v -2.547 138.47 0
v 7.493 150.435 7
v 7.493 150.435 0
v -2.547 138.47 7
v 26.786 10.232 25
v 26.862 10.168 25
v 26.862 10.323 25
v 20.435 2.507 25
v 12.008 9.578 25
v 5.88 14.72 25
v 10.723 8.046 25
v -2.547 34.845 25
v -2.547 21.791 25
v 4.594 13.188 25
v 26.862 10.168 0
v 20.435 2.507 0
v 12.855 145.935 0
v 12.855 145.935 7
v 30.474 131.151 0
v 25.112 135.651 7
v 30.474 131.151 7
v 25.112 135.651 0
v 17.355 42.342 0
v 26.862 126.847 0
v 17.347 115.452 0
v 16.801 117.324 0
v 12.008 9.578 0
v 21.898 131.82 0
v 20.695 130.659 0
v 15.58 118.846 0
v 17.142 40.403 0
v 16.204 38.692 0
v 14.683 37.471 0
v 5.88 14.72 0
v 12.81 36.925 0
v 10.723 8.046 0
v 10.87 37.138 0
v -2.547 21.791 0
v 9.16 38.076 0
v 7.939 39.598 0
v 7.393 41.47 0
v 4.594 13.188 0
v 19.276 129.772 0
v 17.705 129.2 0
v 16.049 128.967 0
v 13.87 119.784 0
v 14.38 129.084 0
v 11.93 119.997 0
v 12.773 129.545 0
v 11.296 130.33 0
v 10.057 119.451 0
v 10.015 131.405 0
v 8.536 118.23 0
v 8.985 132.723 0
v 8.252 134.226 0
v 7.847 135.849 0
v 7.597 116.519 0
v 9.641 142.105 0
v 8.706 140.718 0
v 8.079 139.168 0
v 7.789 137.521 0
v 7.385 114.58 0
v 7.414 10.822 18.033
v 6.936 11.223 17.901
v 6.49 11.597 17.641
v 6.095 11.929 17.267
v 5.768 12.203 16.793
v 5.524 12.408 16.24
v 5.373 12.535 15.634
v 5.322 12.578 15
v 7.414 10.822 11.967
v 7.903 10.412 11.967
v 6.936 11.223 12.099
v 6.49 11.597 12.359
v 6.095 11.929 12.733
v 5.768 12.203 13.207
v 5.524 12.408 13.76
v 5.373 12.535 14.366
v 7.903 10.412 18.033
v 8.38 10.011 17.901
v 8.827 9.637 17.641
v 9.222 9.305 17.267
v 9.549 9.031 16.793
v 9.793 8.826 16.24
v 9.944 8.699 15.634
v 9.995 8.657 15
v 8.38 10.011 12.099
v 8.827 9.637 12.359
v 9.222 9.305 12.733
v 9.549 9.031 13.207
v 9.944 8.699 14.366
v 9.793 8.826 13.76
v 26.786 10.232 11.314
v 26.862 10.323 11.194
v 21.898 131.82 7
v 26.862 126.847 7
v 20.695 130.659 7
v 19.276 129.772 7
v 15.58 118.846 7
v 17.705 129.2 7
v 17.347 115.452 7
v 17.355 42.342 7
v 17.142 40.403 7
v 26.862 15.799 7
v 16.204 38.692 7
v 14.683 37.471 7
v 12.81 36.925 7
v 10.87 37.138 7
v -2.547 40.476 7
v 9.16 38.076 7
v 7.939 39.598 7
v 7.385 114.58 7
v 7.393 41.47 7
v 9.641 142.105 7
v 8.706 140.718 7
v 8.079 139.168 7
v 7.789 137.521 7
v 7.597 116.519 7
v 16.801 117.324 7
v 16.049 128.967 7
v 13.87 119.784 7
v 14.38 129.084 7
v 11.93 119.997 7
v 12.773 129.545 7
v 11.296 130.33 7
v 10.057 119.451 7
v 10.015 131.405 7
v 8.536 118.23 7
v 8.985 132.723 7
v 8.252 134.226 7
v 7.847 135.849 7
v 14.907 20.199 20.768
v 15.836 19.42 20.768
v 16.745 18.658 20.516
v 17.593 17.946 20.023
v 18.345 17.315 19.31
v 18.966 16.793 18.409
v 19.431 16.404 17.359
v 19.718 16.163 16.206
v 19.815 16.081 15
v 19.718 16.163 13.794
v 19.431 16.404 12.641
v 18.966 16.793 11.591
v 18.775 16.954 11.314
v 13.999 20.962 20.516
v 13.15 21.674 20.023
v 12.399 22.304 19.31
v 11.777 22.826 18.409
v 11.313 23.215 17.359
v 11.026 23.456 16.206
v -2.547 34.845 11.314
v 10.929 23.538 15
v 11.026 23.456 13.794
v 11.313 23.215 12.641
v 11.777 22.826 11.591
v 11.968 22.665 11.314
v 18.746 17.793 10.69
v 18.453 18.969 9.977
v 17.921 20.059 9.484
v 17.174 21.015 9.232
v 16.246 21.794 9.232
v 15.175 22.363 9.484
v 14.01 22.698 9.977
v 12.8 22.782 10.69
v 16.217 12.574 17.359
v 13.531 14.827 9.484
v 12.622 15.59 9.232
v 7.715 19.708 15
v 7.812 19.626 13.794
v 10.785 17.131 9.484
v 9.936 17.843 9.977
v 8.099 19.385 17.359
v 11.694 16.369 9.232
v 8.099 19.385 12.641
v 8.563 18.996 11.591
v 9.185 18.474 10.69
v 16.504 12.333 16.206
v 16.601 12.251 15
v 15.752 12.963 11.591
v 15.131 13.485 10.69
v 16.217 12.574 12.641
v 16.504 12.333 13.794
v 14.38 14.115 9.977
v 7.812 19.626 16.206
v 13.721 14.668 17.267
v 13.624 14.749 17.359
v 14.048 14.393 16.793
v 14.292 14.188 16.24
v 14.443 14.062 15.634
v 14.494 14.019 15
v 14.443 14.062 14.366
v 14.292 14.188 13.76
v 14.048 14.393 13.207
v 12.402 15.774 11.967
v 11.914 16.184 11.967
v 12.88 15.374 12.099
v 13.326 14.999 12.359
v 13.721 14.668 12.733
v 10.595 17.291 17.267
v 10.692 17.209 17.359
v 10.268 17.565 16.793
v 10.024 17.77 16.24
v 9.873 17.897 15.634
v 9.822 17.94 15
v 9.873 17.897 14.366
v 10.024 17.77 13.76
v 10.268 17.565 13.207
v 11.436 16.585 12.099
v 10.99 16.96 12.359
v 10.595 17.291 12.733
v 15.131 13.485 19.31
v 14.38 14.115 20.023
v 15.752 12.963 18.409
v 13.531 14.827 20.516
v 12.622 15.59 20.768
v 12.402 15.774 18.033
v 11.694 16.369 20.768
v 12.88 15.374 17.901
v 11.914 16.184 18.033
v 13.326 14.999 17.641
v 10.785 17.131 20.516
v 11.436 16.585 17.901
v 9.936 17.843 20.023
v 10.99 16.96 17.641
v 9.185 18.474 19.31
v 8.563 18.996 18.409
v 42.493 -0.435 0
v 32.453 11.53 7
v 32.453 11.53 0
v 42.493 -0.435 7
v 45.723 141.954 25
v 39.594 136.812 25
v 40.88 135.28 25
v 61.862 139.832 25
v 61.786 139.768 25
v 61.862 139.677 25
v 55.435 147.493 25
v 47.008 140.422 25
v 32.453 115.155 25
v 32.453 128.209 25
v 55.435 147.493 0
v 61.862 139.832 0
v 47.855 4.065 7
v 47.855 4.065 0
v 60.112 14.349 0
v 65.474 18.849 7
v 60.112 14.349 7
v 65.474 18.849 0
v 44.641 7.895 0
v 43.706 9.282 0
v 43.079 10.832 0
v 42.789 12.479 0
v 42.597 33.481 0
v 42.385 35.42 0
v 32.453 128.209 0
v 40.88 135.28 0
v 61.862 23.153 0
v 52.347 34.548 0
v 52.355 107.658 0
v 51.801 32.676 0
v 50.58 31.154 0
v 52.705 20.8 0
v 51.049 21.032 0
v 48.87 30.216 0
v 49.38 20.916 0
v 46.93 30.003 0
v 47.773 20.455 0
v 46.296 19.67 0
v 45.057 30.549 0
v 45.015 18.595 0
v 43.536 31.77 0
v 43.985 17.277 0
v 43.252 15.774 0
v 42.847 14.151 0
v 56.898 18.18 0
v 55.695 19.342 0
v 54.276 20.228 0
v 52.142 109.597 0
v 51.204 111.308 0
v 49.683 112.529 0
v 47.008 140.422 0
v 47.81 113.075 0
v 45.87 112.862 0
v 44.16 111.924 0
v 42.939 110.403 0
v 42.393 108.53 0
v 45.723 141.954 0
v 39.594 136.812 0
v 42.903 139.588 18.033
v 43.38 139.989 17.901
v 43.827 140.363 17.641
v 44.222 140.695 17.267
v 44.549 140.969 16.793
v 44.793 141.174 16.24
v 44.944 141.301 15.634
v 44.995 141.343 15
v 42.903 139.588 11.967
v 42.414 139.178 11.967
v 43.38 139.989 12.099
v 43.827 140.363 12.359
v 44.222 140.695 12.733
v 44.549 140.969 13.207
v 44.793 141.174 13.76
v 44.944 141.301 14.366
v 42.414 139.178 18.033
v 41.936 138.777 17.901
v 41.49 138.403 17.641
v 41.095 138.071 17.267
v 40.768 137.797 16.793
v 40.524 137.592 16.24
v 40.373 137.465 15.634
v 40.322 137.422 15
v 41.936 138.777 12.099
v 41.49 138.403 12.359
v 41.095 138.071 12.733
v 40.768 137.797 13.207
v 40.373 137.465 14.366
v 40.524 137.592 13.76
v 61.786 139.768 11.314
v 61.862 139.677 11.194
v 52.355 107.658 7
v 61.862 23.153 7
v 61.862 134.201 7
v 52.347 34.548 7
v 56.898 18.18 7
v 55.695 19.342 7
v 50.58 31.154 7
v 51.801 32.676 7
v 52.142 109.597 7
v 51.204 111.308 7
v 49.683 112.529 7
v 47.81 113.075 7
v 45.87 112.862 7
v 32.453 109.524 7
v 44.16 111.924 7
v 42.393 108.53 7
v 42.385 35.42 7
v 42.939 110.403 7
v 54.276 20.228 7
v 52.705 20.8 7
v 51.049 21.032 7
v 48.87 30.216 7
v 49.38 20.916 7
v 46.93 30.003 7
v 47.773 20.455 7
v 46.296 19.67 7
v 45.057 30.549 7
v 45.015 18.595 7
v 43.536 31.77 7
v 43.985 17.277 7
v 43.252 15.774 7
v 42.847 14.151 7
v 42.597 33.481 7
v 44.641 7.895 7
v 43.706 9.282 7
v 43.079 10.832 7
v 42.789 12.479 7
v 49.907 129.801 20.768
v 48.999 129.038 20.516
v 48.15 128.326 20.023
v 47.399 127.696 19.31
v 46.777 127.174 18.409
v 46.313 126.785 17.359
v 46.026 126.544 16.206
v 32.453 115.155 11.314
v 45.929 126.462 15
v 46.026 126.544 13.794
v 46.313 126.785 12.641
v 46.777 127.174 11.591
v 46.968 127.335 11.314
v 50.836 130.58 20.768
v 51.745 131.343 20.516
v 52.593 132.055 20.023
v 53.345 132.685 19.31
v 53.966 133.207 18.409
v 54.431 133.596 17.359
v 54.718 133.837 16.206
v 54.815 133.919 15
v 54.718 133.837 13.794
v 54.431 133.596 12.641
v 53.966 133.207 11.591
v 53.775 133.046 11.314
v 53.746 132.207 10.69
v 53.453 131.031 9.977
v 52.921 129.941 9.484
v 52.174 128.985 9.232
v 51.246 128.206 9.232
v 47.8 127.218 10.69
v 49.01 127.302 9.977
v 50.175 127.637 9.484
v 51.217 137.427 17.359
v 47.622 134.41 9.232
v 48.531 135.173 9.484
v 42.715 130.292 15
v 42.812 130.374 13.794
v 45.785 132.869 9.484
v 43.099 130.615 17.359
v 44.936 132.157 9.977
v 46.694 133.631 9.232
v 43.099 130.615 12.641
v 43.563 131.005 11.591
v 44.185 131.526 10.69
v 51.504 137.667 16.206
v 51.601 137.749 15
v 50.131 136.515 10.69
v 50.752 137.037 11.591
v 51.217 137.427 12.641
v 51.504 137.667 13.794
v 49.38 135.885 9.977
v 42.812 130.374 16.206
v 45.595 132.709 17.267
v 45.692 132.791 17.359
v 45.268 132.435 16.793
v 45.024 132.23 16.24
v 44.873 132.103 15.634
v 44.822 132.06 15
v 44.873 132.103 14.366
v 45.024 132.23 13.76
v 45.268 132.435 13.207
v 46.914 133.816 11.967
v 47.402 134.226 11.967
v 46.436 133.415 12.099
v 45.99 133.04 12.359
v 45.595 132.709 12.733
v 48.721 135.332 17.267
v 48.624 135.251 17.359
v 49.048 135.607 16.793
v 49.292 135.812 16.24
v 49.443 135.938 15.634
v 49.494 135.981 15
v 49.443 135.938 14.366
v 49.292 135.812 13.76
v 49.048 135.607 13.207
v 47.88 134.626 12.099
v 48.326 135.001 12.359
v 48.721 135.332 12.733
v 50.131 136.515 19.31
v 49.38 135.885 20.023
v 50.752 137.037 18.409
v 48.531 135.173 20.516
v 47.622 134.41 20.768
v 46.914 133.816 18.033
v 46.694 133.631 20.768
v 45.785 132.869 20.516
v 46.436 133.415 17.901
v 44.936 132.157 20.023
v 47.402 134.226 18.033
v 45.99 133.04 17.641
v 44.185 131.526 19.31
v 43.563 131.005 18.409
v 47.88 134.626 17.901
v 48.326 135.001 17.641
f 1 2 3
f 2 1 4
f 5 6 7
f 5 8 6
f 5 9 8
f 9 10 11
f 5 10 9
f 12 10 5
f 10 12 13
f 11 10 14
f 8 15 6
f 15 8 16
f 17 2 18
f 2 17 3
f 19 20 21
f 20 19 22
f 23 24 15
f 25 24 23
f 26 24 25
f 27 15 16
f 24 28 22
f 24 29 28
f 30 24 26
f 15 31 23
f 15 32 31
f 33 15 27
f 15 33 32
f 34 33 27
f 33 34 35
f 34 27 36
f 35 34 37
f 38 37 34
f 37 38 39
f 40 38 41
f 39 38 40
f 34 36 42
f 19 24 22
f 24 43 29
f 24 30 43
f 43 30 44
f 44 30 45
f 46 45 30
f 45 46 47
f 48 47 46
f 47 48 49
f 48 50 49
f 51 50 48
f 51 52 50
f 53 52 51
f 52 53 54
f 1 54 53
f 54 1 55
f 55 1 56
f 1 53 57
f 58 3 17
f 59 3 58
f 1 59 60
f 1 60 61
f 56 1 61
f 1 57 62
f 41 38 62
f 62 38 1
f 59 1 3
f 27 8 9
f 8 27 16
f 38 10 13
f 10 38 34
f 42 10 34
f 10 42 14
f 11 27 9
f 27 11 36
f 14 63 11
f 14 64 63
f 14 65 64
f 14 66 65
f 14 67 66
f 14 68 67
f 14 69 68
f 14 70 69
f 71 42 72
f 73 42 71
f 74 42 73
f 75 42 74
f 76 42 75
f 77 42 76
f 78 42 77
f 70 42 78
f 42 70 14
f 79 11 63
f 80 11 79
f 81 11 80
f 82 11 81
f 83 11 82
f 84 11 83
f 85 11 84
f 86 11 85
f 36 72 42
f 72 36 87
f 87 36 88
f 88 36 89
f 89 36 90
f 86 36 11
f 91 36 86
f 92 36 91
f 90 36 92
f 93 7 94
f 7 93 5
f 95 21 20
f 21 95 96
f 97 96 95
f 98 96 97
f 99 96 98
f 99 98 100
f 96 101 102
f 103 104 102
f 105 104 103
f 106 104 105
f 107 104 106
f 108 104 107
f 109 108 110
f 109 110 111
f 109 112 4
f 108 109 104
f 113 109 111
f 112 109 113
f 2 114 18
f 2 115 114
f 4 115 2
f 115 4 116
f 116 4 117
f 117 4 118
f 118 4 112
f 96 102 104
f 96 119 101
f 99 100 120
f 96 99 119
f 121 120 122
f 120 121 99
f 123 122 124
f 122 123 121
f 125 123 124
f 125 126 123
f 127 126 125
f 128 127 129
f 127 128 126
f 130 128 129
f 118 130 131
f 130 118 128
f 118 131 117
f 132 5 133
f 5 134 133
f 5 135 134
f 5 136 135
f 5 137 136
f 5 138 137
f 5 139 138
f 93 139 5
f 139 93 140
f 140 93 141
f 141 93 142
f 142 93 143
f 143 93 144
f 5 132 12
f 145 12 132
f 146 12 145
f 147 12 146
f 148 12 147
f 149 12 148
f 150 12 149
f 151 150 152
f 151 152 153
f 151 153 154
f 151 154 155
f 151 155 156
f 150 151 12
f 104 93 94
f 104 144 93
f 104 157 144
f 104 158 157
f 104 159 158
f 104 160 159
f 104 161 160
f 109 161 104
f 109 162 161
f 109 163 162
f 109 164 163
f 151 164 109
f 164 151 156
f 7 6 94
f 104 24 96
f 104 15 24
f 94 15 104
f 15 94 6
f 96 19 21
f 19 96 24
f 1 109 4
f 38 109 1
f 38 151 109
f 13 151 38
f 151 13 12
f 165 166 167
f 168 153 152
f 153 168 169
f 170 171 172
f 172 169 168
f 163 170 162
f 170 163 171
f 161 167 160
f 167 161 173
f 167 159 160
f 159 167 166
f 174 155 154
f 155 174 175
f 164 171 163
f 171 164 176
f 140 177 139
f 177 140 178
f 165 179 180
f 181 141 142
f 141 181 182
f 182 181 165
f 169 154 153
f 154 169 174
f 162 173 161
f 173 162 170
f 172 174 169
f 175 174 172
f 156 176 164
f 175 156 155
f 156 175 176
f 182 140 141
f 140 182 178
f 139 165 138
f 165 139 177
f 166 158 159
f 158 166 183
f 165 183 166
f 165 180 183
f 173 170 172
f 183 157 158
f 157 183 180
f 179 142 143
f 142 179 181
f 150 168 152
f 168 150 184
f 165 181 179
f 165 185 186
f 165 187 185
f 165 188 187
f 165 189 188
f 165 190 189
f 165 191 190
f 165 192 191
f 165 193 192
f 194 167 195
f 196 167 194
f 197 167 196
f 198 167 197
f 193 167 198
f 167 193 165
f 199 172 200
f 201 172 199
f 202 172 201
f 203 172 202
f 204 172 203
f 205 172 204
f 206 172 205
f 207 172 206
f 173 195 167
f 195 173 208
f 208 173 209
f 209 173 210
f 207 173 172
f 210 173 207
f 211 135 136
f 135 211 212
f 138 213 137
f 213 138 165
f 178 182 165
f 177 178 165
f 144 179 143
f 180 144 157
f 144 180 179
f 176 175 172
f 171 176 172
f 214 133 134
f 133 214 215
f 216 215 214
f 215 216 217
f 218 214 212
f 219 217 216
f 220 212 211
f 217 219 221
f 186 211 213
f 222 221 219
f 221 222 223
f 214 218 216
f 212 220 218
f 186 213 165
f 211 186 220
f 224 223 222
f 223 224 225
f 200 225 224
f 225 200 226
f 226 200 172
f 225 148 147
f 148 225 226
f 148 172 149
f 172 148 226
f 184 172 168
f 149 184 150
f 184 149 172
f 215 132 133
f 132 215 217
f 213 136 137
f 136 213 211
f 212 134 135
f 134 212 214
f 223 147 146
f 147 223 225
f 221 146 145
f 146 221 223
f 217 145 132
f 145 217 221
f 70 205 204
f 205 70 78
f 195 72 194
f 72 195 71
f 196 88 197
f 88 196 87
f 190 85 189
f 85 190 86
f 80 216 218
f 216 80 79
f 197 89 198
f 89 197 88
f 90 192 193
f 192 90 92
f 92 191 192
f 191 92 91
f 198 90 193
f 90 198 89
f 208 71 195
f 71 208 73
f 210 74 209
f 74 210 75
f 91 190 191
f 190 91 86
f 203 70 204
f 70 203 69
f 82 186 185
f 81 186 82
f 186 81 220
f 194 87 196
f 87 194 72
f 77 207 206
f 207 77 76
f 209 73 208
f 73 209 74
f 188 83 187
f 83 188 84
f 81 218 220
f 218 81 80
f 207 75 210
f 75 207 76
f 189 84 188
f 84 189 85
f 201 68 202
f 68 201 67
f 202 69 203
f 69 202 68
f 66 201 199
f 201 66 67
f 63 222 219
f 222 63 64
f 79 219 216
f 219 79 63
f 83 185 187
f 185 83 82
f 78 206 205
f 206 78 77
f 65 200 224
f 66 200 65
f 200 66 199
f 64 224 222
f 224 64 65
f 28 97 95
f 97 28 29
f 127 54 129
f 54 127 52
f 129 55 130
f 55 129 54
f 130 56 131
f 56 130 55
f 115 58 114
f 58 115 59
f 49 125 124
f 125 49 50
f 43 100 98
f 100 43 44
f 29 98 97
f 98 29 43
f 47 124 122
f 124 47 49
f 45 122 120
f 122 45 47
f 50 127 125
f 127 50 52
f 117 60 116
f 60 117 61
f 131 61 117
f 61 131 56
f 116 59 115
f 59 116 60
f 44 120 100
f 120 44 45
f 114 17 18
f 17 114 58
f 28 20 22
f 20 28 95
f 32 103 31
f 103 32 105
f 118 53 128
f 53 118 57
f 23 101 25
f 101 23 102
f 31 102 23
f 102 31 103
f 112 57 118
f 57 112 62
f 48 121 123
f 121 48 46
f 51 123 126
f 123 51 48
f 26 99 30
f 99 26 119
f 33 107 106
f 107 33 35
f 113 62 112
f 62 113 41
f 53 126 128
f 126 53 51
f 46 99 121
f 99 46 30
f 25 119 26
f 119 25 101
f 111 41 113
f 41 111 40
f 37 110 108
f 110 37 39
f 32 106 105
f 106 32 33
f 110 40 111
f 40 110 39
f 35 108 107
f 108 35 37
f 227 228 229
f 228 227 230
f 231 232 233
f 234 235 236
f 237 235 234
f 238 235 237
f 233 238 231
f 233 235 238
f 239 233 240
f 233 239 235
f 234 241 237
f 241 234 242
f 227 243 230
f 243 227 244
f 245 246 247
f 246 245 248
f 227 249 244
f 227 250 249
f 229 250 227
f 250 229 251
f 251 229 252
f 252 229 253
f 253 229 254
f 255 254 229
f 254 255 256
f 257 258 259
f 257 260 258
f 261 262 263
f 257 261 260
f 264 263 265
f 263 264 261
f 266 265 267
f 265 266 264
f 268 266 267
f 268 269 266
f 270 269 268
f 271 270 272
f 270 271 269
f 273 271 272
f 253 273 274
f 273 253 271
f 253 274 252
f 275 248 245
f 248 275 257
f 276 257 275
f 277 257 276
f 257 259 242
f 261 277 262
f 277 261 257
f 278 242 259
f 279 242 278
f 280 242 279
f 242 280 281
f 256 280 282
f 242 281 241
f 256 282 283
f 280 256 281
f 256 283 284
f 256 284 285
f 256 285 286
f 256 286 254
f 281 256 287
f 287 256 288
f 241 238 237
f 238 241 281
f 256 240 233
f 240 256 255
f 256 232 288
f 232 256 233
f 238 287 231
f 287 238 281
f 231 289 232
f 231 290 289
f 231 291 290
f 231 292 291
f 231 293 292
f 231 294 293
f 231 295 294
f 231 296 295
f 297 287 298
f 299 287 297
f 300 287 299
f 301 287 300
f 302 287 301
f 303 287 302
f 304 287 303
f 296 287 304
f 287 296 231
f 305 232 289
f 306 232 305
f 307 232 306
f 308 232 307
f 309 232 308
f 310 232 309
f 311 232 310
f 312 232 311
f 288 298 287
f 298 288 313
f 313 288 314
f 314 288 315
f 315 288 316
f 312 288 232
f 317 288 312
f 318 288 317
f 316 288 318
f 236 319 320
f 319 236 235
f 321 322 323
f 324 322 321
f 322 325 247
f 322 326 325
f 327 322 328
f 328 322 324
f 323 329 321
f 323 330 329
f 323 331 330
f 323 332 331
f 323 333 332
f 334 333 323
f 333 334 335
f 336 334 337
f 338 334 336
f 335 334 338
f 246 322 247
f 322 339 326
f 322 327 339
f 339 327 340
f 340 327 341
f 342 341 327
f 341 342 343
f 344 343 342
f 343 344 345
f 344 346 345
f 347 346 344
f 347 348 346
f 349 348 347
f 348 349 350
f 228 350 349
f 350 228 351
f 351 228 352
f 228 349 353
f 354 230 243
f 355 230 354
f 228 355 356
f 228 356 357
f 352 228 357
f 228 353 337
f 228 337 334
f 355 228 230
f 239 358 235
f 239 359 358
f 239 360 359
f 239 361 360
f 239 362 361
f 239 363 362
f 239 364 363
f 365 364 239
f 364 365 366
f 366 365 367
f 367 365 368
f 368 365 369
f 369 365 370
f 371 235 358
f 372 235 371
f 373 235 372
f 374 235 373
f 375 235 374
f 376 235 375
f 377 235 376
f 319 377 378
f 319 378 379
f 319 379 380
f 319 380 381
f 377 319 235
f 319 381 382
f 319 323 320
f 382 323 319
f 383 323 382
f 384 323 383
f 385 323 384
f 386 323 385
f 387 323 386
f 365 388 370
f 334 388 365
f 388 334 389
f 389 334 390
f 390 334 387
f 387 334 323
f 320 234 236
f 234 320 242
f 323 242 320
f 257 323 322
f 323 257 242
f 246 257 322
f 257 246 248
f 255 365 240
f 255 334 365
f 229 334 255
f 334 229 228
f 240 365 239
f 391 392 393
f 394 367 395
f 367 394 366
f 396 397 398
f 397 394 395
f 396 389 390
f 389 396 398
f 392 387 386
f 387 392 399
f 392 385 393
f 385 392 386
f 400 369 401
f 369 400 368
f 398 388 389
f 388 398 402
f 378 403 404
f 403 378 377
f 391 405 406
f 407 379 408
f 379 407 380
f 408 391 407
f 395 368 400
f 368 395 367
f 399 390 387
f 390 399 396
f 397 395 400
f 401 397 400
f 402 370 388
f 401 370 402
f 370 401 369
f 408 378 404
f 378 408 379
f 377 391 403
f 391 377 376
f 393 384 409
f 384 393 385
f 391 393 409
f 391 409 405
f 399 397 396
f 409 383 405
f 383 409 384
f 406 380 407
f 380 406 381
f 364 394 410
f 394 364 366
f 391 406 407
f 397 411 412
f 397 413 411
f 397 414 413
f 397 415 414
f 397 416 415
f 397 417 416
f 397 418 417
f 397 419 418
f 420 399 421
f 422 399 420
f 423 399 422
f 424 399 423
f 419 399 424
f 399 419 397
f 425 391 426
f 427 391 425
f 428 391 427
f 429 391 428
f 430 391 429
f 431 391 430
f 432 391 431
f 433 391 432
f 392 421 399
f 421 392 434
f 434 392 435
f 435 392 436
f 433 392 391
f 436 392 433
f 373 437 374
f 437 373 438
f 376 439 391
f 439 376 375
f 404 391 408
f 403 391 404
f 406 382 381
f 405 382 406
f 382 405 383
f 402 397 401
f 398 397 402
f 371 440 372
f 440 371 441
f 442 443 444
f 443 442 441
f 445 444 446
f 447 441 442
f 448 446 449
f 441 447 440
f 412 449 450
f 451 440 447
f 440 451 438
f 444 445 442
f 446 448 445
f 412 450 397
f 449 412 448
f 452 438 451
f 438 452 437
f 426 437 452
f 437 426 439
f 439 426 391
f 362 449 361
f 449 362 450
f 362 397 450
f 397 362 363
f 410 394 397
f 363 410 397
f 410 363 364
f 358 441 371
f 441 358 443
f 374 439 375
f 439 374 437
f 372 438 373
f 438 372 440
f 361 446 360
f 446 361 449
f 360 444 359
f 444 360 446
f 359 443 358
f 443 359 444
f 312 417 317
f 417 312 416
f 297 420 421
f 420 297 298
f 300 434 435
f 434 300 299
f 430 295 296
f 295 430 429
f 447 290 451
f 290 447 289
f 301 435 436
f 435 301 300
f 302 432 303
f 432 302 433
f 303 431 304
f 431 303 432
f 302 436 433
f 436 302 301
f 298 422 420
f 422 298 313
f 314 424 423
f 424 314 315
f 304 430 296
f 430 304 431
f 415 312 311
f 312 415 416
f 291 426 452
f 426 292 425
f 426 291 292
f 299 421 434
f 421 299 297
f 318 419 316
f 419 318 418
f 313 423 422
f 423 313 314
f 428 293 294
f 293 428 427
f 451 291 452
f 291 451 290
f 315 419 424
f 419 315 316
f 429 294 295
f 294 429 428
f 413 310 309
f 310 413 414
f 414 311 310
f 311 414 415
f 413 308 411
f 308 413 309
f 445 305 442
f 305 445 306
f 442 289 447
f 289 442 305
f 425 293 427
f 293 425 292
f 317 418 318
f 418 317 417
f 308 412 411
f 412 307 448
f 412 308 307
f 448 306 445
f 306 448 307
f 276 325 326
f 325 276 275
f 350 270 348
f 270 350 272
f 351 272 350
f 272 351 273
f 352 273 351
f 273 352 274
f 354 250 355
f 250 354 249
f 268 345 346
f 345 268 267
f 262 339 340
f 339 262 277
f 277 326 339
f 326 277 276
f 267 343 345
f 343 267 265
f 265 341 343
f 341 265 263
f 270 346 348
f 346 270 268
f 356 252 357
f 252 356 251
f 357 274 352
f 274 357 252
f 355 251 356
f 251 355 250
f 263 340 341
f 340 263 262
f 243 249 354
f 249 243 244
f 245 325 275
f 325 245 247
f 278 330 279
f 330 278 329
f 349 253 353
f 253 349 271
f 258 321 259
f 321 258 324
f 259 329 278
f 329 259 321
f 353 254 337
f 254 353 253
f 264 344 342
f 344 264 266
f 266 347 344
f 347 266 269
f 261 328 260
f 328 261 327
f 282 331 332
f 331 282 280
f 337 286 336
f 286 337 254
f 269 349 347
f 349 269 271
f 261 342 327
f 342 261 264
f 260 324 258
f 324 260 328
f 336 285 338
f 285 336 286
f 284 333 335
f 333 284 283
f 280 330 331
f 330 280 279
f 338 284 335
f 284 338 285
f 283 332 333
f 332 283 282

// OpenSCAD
// file: ../configuration.scad
/*
	Konfiguracni soubor 3D tiskarny RebeliX X2
	
	Sledujte nas na:		  
			www.RepRap4U.cz
			www.facebook.com/RebeliX.cz
			https://twitter.com/reprap4u
			https://plus.google.com/+Reprap4uCz-3Dtiskarna-RebeliX
*/

/*================ Slic3r nastaveni ==========================*/

// Vyska vrstvy pro tisknuti dilu [mm]
layer_height = 0.3;

// Sirka vytlacovaneho materialu [mm]
extrusion_width = 0.66; //Slic3r->Print Settings->Advanced->Default extrusion width

/*==================== M6 sroub ==============================*/

// Rezerva prumeru hlavy sroubu [mm]
space = 1;

// Prumer hlavy M6 sroubu (pricte se rezerva) [mm]
M6_head_diameter = 10.6+space;
//M6_head_diameter = 12+space;

// Vyska hlavy M6 sroubu (dulezite pro zapusteni hlavy sroubu do plastu) [mm]
M6_head_height = 3.6;
//M6_head_height = 4.5;

// Delka sroubu M6 [mm]
// M6x12
M6_lenght = 12;

/*=================== Nastaveni dilu =========================*/

// Posun Z zakladny
z_base_offset = 11;

// Tloustka rohovych spojek
// 5 mm => sroub M6x14 s podlozkou
// 3 mm => sroub M6x12 s podlozkou
coupler_thickness = 5;

// Prumer 8mm tyce
rod_8mm_d = 8.2;

// Posun drzacku mezi x-motor a x-end
x_holder_position = 6.5;

/*======================== Motory ============================*/

// Delka motoru (ovlivni dily a delky tyci pro osy Z a Y)
//SX17-1003LQFE (doporuceno hlavne na osu Z)
motor_length = 29.5;
//SX17-1003 (doporuceno hlavne na osu Z), SX17-0503LQEF
//motor_length = 34;
//SX17-1005
//motor_length = 40;
//SX17-0905 - zde je jiz problem s velkou vyskou motoru na ose Z - musi se upravit endstop-holder
//motor_length = 48;

/*================ Remeny a remenicky ========================*/

// GT2 
belt_tooth_distance = 2;
belt_tooth_ratio = 0.5;

// T2.5
//belt_tooth_distance = 2.5;
//belt_tooth_ratio = 0.68;
// main file
// RebeliX
//
// spool-holder
// GNU GPL v3
// Martin Neruda <neruda@reprap4u.cz>
// http://www.reprap4u.cz

include <../configuration.scad>

height = 105;
thickness = 25;
width = height;

module drzak_zakladna(){
  translate([0,0,0]) cube([width,height,thickness]);
  translate([width-15-4,-2,0]) cube([8,3,thickness]);

}

module drzak_rezy(){
  translate([width-30,0,-0.1]) rotate([0,0,130]) cube([200,width,40]);
  difference(){  
	translate([-0.1,10,7]) cube([width,height,40]);
    // Opora drzaku
	translate([width-45,10,0]) rotate([45,0,0]) cube([45,8,8]);
  }
  intersection(){
    translate([width,10,-0.1]) rotate([0,0,40]) cube([height,height+35,40]);
    translate([30,0,-0.1]) cube([width,height+0.1,40]);
  }
  // Otvor pro sroub M6
  translate([width-15,5,15]) rotate([-90,0,0]) cylinder(r = M6_head_diameter/2, h = 10, $fn = 30);
  translate([width-15,-4,15]) rotate([-90,0,0]) cylinder(r = 3.05, h = 20, $fn = 30);
  // Otvor pro tyc M8
  translate([15,height-5,-0.1]) cylinder(r = 8, h = 20, $fn = 30);
  translate([15-8,height-5,-0.1]) cube([2*8,10,20]);
  // Setreni plastem
  hull() {
	translate([width-31.5,25,-0.1]) cylinder(h=10,r=5);
	translate([width-78.5,width-24,-0.1]) cylinder(h=10,r=5);
  }
 }

// Cela soucastka
module drzak_civky(){
 translate([-60,70,0]) rotate([0,0,-40]) 
 difference(){
   drzak_zakladna();
   drzak_rezy();
   
 }
 translate([-25,80,0]) rotate([0,0,-140]) mirror([1,0,0]) difference(){
  drzak_zakladna();
  drzak_rezy();
 }
}

drzak_civky();
